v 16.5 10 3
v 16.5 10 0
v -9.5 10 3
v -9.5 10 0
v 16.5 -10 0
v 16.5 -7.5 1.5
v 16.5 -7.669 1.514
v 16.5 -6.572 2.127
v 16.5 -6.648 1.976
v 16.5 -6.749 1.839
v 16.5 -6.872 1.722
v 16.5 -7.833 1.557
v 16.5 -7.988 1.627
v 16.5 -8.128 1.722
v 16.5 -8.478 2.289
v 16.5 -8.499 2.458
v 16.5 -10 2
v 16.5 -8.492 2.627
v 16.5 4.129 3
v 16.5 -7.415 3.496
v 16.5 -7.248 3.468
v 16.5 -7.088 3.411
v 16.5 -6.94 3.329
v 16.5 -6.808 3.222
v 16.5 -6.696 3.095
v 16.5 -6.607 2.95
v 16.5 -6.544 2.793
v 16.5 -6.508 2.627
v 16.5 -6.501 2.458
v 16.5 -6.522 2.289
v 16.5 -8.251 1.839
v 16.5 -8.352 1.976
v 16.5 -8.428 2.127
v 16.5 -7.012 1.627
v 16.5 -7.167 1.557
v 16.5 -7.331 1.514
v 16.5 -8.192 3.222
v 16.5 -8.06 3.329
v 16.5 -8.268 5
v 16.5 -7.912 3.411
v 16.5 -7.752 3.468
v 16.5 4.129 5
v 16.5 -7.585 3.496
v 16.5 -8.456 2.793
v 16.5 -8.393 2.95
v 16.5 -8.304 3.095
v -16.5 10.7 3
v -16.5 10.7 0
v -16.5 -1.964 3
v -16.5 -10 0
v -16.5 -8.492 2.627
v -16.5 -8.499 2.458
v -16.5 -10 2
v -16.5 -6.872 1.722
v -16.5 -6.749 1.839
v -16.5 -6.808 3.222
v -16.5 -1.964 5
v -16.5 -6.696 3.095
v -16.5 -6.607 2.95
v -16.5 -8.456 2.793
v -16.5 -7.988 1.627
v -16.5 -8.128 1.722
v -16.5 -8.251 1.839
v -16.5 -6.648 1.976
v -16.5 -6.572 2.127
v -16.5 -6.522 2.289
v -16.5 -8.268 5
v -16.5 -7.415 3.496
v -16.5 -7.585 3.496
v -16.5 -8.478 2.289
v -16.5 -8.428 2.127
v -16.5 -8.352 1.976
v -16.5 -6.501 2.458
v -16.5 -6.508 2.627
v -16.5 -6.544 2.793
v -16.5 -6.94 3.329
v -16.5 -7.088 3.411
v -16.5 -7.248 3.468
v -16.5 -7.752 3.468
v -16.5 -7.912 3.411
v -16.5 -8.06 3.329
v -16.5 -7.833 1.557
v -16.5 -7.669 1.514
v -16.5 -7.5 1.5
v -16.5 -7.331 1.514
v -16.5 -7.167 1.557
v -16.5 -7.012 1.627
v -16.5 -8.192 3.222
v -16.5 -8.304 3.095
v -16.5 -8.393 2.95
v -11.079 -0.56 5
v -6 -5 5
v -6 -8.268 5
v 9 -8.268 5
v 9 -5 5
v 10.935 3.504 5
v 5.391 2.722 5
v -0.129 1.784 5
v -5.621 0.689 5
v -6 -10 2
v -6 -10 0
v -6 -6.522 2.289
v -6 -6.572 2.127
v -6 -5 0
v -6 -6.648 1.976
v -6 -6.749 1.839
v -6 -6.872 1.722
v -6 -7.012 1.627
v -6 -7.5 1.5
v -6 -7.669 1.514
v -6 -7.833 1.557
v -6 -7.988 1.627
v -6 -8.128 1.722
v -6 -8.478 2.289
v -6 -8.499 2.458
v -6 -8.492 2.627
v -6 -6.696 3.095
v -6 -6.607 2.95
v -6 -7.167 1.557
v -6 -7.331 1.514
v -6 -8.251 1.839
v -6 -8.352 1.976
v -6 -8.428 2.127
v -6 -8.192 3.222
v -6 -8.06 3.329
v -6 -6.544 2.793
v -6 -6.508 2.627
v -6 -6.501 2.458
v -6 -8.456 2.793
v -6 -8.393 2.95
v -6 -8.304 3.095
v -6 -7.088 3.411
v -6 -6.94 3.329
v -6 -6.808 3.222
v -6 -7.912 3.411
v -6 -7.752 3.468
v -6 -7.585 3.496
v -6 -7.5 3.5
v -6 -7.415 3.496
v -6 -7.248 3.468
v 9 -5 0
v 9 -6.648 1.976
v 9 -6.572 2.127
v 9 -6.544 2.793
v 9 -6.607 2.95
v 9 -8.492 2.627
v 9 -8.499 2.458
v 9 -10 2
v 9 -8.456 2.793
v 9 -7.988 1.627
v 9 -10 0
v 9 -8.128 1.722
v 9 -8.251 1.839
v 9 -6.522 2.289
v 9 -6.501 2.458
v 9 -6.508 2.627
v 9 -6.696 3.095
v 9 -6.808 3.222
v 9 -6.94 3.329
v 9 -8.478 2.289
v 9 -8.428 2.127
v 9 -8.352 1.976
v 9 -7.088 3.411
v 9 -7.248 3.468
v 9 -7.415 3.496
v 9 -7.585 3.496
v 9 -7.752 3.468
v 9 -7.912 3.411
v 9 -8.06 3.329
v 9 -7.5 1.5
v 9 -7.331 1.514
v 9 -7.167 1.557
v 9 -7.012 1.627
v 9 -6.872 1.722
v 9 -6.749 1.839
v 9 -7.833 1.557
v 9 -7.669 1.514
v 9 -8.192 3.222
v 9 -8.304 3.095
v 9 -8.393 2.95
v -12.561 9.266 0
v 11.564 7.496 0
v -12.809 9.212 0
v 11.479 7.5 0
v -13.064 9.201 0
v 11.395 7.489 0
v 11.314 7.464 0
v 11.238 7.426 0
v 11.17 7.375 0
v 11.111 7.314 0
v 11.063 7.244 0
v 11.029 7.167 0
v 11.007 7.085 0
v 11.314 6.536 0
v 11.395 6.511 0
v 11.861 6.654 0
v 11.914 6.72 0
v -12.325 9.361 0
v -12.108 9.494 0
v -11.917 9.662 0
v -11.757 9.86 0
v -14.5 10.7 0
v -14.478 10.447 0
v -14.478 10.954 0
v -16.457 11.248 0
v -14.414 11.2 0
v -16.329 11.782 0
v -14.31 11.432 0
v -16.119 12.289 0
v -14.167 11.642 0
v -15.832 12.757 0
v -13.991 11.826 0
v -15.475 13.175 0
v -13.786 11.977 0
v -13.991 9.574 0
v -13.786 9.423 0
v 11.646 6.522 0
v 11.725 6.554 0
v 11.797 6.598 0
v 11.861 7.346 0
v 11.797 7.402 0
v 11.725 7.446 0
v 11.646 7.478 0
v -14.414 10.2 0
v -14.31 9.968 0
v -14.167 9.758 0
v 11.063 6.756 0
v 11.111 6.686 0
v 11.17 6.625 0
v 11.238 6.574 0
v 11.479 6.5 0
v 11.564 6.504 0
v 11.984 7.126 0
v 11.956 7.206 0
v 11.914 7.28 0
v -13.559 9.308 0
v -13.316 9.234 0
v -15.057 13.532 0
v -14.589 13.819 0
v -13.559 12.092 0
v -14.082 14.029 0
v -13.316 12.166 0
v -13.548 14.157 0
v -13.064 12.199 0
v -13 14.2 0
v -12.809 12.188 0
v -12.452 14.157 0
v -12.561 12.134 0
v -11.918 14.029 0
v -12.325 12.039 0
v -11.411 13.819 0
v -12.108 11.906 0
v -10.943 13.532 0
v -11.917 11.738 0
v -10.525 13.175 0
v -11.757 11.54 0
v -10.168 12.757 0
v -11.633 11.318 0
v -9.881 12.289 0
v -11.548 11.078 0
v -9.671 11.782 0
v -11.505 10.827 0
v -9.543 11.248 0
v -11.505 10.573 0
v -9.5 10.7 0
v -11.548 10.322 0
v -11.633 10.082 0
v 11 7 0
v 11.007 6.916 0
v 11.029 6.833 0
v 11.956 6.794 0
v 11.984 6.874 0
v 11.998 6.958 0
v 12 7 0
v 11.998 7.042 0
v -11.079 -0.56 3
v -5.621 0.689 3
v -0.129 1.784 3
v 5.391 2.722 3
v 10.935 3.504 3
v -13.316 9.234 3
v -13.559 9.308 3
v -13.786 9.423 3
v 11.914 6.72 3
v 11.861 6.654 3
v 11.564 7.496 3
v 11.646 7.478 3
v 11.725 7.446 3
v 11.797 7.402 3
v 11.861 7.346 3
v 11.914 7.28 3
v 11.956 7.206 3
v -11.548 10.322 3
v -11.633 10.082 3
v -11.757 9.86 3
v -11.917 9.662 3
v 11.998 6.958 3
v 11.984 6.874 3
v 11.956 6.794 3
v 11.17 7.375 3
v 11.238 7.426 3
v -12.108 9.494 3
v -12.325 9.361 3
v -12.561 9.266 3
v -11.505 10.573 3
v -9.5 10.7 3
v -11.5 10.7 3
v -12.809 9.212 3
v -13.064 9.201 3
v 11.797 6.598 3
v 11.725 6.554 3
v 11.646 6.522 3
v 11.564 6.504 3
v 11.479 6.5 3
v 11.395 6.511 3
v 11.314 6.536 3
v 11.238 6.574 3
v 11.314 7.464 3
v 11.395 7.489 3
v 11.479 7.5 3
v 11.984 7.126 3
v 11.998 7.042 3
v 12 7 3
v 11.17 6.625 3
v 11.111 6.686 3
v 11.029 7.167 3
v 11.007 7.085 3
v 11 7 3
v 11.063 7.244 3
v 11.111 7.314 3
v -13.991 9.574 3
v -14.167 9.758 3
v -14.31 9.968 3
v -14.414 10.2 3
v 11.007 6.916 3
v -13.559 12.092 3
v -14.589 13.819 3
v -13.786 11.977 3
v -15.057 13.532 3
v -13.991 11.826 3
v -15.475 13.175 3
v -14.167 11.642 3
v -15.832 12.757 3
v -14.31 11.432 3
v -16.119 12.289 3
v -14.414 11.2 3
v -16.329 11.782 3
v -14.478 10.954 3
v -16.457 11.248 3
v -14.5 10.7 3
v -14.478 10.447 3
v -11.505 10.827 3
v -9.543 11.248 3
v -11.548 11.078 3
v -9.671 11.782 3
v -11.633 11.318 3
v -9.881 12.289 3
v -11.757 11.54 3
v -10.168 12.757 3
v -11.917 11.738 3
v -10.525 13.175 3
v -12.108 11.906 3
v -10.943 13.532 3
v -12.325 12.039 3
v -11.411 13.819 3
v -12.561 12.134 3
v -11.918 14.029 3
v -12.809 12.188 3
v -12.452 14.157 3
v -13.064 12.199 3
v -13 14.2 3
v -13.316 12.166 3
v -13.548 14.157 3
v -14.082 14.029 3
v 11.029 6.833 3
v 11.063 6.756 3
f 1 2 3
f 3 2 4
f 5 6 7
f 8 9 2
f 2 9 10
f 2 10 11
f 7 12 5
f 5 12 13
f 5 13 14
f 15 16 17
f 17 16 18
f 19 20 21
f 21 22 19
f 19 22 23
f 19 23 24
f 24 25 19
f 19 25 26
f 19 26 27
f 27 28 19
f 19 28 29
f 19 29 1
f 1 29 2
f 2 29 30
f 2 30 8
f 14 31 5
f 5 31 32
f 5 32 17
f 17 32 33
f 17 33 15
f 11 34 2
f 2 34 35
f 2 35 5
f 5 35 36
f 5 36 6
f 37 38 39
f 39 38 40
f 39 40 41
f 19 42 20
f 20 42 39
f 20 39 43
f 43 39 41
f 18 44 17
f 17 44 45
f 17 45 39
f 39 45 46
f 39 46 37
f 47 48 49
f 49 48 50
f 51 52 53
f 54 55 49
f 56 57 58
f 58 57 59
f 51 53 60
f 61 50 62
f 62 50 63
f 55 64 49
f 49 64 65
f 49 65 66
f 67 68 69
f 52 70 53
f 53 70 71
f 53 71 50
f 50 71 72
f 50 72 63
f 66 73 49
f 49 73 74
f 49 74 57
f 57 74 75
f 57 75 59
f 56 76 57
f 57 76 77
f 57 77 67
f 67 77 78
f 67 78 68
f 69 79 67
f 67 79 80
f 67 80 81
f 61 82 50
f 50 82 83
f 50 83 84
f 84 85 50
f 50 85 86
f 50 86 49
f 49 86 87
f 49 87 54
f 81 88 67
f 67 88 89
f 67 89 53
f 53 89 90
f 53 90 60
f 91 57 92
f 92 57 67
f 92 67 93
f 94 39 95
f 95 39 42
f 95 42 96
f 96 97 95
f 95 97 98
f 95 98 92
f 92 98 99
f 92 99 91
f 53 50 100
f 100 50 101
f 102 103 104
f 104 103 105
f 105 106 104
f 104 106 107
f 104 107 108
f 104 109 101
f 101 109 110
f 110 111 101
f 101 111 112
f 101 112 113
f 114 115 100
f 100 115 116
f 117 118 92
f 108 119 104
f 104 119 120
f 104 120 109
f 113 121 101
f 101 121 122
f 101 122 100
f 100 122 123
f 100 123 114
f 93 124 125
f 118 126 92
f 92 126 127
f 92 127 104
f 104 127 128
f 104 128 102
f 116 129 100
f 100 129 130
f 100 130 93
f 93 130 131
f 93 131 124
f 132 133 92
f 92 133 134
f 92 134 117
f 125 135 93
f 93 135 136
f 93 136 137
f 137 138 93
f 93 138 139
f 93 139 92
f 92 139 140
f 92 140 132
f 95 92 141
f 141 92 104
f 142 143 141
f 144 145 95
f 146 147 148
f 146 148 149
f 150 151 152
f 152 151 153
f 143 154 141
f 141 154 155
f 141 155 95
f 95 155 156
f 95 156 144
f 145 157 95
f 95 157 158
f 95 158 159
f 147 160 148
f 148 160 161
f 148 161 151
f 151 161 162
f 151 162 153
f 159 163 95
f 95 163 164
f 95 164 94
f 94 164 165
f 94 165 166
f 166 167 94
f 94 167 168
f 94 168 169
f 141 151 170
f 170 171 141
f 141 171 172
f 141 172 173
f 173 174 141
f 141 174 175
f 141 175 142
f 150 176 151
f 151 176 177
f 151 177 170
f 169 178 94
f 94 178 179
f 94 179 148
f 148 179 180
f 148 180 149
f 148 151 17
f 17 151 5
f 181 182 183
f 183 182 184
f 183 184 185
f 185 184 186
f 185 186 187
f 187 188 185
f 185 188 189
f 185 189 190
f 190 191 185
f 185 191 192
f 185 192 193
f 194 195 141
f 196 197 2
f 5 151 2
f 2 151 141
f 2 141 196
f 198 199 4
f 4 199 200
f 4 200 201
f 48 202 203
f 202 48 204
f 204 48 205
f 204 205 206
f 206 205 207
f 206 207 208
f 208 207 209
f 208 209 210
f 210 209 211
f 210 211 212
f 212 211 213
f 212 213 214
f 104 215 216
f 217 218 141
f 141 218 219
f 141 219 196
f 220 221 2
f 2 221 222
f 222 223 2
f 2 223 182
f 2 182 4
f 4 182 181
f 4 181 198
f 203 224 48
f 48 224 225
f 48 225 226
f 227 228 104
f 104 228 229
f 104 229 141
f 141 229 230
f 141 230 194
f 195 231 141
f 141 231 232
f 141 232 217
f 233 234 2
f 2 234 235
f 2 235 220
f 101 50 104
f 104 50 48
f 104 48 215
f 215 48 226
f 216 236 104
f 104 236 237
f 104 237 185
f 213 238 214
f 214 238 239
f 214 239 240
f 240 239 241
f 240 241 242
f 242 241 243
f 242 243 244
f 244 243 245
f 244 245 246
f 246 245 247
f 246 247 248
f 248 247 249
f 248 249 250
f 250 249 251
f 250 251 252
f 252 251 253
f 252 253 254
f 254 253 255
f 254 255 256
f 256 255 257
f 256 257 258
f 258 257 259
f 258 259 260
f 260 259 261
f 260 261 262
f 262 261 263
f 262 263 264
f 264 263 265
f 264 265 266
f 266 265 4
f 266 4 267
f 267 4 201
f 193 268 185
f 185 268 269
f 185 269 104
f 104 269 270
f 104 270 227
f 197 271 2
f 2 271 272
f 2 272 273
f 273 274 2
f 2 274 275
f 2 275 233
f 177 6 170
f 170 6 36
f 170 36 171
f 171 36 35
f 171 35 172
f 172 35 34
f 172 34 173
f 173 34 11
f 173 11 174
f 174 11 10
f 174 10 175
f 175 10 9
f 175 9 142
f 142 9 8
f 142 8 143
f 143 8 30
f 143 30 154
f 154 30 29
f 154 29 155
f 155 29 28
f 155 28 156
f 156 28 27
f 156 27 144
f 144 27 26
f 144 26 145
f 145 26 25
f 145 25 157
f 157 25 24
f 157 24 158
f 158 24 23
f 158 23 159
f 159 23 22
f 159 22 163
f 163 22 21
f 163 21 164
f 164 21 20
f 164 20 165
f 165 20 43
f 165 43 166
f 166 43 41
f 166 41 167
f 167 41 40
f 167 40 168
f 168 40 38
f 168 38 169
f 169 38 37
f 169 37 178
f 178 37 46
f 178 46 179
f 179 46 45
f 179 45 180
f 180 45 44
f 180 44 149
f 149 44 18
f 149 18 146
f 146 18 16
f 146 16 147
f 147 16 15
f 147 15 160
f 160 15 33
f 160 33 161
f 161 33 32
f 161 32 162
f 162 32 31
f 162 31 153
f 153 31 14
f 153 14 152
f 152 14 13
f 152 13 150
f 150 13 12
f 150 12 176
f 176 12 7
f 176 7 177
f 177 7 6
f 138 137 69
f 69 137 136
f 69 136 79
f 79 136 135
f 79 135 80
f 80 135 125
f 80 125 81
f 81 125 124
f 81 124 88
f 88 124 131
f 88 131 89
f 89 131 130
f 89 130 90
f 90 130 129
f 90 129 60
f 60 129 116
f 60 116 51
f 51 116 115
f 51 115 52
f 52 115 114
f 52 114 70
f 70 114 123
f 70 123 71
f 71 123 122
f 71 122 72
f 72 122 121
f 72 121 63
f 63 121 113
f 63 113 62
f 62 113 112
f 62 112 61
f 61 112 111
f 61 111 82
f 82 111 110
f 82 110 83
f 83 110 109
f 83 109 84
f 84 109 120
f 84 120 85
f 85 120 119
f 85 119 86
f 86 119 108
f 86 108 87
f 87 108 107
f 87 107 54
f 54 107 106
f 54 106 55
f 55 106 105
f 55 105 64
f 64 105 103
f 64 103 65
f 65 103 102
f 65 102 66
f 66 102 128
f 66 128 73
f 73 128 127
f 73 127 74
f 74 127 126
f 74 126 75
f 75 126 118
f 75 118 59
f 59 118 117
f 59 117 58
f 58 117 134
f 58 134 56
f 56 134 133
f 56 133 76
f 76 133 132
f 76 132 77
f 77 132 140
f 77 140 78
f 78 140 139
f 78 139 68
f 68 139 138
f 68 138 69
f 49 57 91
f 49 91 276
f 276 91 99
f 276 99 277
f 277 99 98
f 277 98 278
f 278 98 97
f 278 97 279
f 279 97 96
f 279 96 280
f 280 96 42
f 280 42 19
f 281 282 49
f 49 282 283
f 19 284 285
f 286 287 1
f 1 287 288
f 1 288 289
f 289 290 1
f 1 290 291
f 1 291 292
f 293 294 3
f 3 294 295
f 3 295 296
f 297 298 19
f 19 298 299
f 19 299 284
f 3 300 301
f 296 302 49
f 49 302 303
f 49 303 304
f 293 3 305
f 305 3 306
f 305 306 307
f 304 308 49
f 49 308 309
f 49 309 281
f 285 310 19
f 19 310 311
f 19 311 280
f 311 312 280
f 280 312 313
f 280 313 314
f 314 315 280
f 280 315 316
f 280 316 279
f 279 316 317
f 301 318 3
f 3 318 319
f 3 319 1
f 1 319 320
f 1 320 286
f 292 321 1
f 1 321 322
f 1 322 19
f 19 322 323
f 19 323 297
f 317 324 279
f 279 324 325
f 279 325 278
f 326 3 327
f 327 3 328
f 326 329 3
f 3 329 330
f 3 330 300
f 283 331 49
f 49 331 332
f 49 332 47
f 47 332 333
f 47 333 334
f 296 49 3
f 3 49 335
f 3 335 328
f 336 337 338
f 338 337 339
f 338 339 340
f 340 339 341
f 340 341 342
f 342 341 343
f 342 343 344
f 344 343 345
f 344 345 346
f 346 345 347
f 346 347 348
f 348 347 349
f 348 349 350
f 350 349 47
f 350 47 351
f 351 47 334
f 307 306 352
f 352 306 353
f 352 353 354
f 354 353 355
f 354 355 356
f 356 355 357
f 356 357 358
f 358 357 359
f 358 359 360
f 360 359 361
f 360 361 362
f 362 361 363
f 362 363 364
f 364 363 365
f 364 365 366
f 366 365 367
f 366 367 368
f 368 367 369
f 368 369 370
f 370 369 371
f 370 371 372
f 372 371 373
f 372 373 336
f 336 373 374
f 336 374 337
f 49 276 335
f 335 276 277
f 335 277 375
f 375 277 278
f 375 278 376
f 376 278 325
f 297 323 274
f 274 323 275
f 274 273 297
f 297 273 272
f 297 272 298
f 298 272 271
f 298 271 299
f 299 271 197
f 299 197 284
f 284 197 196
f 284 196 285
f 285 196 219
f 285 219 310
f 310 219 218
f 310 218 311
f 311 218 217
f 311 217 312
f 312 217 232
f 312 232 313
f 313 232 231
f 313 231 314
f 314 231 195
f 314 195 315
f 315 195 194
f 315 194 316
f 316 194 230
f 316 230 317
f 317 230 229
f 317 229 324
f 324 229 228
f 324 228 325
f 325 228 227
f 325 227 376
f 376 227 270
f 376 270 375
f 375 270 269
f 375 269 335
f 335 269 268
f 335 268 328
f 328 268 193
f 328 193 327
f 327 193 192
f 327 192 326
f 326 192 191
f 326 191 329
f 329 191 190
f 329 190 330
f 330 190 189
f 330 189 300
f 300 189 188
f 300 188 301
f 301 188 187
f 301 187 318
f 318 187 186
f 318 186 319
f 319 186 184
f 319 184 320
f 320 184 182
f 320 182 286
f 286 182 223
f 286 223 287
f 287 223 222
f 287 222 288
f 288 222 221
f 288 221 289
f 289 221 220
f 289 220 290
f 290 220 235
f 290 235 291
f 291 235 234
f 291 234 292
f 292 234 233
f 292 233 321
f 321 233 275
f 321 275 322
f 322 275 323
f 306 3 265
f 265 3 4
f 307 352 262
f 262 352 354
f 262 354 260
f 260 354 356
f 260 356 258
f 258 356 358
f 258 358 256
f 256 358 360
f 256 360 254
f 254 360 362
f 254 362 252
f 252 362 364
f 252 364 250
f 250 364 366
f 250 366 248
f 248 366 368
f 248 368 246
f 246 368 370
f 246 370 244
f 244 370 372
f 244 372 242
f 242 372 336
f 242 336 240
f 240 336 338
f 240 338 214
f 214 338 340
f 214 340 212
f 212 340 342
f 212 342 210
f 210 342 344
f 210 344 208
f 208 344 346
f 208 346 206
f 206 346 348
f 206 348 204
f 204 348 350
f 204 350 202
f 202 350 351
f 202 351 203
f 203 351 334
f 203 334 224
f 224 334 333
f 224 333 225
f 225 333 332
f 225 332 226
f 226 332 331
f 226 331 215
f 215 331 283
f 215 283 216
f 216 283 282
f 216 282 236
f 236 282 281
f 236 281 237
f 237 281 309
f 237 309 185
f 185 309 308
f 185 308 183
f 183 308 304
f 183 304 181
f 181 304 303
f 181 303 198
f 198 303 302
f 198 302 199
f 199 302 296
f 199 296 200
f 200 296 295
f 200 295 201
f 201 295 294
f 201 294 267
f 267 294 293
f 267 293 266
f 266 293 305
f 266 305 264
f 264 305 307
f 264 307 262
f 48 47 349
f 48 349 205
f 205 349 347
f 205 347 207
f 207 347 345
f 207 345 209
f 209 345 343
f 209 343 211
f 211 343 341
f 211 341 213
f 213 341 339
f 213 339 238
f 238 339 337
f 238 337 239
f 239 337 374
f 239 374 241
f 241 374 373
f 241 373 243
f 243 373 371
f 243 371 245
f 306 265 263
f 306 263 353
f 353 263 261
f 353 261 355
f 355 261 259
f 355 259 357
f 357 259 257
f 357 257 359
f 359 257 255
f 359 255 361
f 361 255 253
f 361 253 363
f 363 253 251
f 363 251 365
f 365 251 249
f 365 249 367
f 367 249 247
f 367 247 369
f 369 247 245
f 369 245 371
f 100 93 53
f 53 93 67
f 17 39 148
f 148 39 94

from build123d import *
from OCP.BRepFilletAPI import BRepFilletAPI_MakeChamfer

# Parameters (mm, degrees)
RESSALTO_EXTRUS_O1_DEPTH = 5
ESBO_O2_R                = 1
CORTE_EXTRUS_O1_DEPTH    = 35.84250278
CORTE_EXTRUS_O2_DEPTH    = 2
SKETCH1_R                = 0.5
CUT_EXTRUDE1_DEPTH       = 20.931131428
SKETCH2_W                = 7
SKETCH2_H                = 3
BOSS_EXTRUDE1_DEPTH      = 4.2
SKETCH3_R                = 1.5
CUT_EXTRUDE2_DEPTH       = 23.33584563
FILLET2_R                = 3.5
CHAMFER1_SIZE            = 3
CHAMFER1_SIZE2           = 1.732050808


with BuildPart() as part:
    # Esboço1 → Ressalto-extrusão1 (new body)
    with BuildSketch(Plane.XY):
        Polygon((9, -10), (16.5, -10), (16.5, 10), (-16.5, 10), (-16.5, -10), (-6, -10), (-6, -5), (9, -5), align=None)
    extrude(amount=RESSALTO_EXTRUS_O1_DEPTH)

    # Esboço2 → Corte-extrusão1 (cut, through all)
    with BuildSketch(Plane(origin=(16.5, 0, 0), x_dir=(0, 0, -1), z_dir=(1, 0, 0))):
        with Locations((-2.5, -7.5)):
            Circle(ESBO_O2_R)
    extrude(amount=-CORTE_EXTRUS_O1_DEPTH, mode=Mode.SUBTRACT)

    # Esboço3 → Corte-extrusão2 (cut)
    with BuildSketch(Plane.XY.offset(5)):
        with BuildLine():
            Line((-16.5, 10), (-16.5, -1.963769034))
            ThreePointArc((-16.5, -1.963769034), (-0.129411774, 1.783536996), (16.5, 4.128984796))
            Line((16.5, 4.128984796), (16.5, 5.523404181))
            Line((16.5, 5.523404181), (16.5, 10))
            Line((16.5, 10), (-16.5, 10))
        make_face()
    extrude(amount=-CORTE_EXTRUS_O2_DEPTH, mode=Mode.SUBTRACT)

    # Sketch1 → Cut-Extrude1 (cut, through all)
    with BuildSketch(Plane(origin=(0, 0, 0), x_dir=(-1, 0, 0), z_dir=(0, 0, -1))):
        with Locations(Location((-11.5, 7, 0), (0, 0, 180))):
            Circle(SKETCH1_R)
    extrude(amount=-CUT_EXTRUDE1_DEPTH, mode=Mode.SUBTRACT)

    # Sketch2 → Boss-Extrude1 (add)
    with BuildSketch(Plane(origin=(0, 10, 0), x_dir=(1, 0, 0), z_dir=(0, 1, 0))):
        with Locations((-13, -1.5)):
            Rectangle(SKETCH2_W, SKETCH2_H)
    extrude(amount=BOSS_EXTRUDE1_DEPTH)

    # Sketch3 → Cut-Extrude2 (cut, through all)
    with BuildSketch(Plane(origin=(0, 0, 0), x_dir=(-1, 0, 0), z_dir=(0, 0, -1))):
        with Locations((13, 10.7)):
            Circle(SKETCH3_R)
    extrude(amount=-CUT_EXTRUDE2_DEPTH, mode=Mode.SUBTRACT)

    # Fillet2
    fillet2_edges = [part.edges().sort_by_distance(p)[0] for p in [
        (-9.5, 14.2, 1.5),
        (-16.5, 14.2, 1.5),
    ]]
    fillet(fillet2_edges, radius=FILLET2_R - 0.0001)  # a hair under: the kernel refuses the full size

    # Chamfer1: one chamfer whose edges measure the first distance from different faces: ONE call of the kernel's chamfer builder (chamfer() names one face for all edges)
    chamfer1_edges_1 = [part.edges().sort_by_distance(p)[0] for p in [
        (-11.25, -10, 5),
    ]]
    chamfer1_side_1 = [part.faces().sort_by_distance(p)[0] for p in [
        (-11.25, -10, 2.5),
    ]]
    chamfer1_edges_2 = [part.edges().sort_by_distance(p)[0] for p in [
        (12.75, -10, 5),
    ]]
    chamfer1_side_2 = [part.faces().sort_by_distance(p)[0] for p in [
        (12.75, -10, 2.5),
    ]]
    chamfer1 = BRepFilletAPI_MakeChamfer(part.part.solid().wrapped)
    for e in chamfer1_edges_1:
        chamfer1.Add(CHAMFER1_SIZE, CHAMFER1_SIZE2, e.wrapped, chamfer1_side_1[0].wrapped)  # the first distance lies on this face
    for e in chamfer1_edges_2:
        chamfer1.Add(CHAMFER1_SIZE, CHAMFER1_SIZE2, e.wrapped, chamfer1_side_2[0].wrapped)  # the first distance lies on this face
    add(Compound.cast(chamfer1.Shape()), mode=Mode.REPLACE)


solid = part.part
